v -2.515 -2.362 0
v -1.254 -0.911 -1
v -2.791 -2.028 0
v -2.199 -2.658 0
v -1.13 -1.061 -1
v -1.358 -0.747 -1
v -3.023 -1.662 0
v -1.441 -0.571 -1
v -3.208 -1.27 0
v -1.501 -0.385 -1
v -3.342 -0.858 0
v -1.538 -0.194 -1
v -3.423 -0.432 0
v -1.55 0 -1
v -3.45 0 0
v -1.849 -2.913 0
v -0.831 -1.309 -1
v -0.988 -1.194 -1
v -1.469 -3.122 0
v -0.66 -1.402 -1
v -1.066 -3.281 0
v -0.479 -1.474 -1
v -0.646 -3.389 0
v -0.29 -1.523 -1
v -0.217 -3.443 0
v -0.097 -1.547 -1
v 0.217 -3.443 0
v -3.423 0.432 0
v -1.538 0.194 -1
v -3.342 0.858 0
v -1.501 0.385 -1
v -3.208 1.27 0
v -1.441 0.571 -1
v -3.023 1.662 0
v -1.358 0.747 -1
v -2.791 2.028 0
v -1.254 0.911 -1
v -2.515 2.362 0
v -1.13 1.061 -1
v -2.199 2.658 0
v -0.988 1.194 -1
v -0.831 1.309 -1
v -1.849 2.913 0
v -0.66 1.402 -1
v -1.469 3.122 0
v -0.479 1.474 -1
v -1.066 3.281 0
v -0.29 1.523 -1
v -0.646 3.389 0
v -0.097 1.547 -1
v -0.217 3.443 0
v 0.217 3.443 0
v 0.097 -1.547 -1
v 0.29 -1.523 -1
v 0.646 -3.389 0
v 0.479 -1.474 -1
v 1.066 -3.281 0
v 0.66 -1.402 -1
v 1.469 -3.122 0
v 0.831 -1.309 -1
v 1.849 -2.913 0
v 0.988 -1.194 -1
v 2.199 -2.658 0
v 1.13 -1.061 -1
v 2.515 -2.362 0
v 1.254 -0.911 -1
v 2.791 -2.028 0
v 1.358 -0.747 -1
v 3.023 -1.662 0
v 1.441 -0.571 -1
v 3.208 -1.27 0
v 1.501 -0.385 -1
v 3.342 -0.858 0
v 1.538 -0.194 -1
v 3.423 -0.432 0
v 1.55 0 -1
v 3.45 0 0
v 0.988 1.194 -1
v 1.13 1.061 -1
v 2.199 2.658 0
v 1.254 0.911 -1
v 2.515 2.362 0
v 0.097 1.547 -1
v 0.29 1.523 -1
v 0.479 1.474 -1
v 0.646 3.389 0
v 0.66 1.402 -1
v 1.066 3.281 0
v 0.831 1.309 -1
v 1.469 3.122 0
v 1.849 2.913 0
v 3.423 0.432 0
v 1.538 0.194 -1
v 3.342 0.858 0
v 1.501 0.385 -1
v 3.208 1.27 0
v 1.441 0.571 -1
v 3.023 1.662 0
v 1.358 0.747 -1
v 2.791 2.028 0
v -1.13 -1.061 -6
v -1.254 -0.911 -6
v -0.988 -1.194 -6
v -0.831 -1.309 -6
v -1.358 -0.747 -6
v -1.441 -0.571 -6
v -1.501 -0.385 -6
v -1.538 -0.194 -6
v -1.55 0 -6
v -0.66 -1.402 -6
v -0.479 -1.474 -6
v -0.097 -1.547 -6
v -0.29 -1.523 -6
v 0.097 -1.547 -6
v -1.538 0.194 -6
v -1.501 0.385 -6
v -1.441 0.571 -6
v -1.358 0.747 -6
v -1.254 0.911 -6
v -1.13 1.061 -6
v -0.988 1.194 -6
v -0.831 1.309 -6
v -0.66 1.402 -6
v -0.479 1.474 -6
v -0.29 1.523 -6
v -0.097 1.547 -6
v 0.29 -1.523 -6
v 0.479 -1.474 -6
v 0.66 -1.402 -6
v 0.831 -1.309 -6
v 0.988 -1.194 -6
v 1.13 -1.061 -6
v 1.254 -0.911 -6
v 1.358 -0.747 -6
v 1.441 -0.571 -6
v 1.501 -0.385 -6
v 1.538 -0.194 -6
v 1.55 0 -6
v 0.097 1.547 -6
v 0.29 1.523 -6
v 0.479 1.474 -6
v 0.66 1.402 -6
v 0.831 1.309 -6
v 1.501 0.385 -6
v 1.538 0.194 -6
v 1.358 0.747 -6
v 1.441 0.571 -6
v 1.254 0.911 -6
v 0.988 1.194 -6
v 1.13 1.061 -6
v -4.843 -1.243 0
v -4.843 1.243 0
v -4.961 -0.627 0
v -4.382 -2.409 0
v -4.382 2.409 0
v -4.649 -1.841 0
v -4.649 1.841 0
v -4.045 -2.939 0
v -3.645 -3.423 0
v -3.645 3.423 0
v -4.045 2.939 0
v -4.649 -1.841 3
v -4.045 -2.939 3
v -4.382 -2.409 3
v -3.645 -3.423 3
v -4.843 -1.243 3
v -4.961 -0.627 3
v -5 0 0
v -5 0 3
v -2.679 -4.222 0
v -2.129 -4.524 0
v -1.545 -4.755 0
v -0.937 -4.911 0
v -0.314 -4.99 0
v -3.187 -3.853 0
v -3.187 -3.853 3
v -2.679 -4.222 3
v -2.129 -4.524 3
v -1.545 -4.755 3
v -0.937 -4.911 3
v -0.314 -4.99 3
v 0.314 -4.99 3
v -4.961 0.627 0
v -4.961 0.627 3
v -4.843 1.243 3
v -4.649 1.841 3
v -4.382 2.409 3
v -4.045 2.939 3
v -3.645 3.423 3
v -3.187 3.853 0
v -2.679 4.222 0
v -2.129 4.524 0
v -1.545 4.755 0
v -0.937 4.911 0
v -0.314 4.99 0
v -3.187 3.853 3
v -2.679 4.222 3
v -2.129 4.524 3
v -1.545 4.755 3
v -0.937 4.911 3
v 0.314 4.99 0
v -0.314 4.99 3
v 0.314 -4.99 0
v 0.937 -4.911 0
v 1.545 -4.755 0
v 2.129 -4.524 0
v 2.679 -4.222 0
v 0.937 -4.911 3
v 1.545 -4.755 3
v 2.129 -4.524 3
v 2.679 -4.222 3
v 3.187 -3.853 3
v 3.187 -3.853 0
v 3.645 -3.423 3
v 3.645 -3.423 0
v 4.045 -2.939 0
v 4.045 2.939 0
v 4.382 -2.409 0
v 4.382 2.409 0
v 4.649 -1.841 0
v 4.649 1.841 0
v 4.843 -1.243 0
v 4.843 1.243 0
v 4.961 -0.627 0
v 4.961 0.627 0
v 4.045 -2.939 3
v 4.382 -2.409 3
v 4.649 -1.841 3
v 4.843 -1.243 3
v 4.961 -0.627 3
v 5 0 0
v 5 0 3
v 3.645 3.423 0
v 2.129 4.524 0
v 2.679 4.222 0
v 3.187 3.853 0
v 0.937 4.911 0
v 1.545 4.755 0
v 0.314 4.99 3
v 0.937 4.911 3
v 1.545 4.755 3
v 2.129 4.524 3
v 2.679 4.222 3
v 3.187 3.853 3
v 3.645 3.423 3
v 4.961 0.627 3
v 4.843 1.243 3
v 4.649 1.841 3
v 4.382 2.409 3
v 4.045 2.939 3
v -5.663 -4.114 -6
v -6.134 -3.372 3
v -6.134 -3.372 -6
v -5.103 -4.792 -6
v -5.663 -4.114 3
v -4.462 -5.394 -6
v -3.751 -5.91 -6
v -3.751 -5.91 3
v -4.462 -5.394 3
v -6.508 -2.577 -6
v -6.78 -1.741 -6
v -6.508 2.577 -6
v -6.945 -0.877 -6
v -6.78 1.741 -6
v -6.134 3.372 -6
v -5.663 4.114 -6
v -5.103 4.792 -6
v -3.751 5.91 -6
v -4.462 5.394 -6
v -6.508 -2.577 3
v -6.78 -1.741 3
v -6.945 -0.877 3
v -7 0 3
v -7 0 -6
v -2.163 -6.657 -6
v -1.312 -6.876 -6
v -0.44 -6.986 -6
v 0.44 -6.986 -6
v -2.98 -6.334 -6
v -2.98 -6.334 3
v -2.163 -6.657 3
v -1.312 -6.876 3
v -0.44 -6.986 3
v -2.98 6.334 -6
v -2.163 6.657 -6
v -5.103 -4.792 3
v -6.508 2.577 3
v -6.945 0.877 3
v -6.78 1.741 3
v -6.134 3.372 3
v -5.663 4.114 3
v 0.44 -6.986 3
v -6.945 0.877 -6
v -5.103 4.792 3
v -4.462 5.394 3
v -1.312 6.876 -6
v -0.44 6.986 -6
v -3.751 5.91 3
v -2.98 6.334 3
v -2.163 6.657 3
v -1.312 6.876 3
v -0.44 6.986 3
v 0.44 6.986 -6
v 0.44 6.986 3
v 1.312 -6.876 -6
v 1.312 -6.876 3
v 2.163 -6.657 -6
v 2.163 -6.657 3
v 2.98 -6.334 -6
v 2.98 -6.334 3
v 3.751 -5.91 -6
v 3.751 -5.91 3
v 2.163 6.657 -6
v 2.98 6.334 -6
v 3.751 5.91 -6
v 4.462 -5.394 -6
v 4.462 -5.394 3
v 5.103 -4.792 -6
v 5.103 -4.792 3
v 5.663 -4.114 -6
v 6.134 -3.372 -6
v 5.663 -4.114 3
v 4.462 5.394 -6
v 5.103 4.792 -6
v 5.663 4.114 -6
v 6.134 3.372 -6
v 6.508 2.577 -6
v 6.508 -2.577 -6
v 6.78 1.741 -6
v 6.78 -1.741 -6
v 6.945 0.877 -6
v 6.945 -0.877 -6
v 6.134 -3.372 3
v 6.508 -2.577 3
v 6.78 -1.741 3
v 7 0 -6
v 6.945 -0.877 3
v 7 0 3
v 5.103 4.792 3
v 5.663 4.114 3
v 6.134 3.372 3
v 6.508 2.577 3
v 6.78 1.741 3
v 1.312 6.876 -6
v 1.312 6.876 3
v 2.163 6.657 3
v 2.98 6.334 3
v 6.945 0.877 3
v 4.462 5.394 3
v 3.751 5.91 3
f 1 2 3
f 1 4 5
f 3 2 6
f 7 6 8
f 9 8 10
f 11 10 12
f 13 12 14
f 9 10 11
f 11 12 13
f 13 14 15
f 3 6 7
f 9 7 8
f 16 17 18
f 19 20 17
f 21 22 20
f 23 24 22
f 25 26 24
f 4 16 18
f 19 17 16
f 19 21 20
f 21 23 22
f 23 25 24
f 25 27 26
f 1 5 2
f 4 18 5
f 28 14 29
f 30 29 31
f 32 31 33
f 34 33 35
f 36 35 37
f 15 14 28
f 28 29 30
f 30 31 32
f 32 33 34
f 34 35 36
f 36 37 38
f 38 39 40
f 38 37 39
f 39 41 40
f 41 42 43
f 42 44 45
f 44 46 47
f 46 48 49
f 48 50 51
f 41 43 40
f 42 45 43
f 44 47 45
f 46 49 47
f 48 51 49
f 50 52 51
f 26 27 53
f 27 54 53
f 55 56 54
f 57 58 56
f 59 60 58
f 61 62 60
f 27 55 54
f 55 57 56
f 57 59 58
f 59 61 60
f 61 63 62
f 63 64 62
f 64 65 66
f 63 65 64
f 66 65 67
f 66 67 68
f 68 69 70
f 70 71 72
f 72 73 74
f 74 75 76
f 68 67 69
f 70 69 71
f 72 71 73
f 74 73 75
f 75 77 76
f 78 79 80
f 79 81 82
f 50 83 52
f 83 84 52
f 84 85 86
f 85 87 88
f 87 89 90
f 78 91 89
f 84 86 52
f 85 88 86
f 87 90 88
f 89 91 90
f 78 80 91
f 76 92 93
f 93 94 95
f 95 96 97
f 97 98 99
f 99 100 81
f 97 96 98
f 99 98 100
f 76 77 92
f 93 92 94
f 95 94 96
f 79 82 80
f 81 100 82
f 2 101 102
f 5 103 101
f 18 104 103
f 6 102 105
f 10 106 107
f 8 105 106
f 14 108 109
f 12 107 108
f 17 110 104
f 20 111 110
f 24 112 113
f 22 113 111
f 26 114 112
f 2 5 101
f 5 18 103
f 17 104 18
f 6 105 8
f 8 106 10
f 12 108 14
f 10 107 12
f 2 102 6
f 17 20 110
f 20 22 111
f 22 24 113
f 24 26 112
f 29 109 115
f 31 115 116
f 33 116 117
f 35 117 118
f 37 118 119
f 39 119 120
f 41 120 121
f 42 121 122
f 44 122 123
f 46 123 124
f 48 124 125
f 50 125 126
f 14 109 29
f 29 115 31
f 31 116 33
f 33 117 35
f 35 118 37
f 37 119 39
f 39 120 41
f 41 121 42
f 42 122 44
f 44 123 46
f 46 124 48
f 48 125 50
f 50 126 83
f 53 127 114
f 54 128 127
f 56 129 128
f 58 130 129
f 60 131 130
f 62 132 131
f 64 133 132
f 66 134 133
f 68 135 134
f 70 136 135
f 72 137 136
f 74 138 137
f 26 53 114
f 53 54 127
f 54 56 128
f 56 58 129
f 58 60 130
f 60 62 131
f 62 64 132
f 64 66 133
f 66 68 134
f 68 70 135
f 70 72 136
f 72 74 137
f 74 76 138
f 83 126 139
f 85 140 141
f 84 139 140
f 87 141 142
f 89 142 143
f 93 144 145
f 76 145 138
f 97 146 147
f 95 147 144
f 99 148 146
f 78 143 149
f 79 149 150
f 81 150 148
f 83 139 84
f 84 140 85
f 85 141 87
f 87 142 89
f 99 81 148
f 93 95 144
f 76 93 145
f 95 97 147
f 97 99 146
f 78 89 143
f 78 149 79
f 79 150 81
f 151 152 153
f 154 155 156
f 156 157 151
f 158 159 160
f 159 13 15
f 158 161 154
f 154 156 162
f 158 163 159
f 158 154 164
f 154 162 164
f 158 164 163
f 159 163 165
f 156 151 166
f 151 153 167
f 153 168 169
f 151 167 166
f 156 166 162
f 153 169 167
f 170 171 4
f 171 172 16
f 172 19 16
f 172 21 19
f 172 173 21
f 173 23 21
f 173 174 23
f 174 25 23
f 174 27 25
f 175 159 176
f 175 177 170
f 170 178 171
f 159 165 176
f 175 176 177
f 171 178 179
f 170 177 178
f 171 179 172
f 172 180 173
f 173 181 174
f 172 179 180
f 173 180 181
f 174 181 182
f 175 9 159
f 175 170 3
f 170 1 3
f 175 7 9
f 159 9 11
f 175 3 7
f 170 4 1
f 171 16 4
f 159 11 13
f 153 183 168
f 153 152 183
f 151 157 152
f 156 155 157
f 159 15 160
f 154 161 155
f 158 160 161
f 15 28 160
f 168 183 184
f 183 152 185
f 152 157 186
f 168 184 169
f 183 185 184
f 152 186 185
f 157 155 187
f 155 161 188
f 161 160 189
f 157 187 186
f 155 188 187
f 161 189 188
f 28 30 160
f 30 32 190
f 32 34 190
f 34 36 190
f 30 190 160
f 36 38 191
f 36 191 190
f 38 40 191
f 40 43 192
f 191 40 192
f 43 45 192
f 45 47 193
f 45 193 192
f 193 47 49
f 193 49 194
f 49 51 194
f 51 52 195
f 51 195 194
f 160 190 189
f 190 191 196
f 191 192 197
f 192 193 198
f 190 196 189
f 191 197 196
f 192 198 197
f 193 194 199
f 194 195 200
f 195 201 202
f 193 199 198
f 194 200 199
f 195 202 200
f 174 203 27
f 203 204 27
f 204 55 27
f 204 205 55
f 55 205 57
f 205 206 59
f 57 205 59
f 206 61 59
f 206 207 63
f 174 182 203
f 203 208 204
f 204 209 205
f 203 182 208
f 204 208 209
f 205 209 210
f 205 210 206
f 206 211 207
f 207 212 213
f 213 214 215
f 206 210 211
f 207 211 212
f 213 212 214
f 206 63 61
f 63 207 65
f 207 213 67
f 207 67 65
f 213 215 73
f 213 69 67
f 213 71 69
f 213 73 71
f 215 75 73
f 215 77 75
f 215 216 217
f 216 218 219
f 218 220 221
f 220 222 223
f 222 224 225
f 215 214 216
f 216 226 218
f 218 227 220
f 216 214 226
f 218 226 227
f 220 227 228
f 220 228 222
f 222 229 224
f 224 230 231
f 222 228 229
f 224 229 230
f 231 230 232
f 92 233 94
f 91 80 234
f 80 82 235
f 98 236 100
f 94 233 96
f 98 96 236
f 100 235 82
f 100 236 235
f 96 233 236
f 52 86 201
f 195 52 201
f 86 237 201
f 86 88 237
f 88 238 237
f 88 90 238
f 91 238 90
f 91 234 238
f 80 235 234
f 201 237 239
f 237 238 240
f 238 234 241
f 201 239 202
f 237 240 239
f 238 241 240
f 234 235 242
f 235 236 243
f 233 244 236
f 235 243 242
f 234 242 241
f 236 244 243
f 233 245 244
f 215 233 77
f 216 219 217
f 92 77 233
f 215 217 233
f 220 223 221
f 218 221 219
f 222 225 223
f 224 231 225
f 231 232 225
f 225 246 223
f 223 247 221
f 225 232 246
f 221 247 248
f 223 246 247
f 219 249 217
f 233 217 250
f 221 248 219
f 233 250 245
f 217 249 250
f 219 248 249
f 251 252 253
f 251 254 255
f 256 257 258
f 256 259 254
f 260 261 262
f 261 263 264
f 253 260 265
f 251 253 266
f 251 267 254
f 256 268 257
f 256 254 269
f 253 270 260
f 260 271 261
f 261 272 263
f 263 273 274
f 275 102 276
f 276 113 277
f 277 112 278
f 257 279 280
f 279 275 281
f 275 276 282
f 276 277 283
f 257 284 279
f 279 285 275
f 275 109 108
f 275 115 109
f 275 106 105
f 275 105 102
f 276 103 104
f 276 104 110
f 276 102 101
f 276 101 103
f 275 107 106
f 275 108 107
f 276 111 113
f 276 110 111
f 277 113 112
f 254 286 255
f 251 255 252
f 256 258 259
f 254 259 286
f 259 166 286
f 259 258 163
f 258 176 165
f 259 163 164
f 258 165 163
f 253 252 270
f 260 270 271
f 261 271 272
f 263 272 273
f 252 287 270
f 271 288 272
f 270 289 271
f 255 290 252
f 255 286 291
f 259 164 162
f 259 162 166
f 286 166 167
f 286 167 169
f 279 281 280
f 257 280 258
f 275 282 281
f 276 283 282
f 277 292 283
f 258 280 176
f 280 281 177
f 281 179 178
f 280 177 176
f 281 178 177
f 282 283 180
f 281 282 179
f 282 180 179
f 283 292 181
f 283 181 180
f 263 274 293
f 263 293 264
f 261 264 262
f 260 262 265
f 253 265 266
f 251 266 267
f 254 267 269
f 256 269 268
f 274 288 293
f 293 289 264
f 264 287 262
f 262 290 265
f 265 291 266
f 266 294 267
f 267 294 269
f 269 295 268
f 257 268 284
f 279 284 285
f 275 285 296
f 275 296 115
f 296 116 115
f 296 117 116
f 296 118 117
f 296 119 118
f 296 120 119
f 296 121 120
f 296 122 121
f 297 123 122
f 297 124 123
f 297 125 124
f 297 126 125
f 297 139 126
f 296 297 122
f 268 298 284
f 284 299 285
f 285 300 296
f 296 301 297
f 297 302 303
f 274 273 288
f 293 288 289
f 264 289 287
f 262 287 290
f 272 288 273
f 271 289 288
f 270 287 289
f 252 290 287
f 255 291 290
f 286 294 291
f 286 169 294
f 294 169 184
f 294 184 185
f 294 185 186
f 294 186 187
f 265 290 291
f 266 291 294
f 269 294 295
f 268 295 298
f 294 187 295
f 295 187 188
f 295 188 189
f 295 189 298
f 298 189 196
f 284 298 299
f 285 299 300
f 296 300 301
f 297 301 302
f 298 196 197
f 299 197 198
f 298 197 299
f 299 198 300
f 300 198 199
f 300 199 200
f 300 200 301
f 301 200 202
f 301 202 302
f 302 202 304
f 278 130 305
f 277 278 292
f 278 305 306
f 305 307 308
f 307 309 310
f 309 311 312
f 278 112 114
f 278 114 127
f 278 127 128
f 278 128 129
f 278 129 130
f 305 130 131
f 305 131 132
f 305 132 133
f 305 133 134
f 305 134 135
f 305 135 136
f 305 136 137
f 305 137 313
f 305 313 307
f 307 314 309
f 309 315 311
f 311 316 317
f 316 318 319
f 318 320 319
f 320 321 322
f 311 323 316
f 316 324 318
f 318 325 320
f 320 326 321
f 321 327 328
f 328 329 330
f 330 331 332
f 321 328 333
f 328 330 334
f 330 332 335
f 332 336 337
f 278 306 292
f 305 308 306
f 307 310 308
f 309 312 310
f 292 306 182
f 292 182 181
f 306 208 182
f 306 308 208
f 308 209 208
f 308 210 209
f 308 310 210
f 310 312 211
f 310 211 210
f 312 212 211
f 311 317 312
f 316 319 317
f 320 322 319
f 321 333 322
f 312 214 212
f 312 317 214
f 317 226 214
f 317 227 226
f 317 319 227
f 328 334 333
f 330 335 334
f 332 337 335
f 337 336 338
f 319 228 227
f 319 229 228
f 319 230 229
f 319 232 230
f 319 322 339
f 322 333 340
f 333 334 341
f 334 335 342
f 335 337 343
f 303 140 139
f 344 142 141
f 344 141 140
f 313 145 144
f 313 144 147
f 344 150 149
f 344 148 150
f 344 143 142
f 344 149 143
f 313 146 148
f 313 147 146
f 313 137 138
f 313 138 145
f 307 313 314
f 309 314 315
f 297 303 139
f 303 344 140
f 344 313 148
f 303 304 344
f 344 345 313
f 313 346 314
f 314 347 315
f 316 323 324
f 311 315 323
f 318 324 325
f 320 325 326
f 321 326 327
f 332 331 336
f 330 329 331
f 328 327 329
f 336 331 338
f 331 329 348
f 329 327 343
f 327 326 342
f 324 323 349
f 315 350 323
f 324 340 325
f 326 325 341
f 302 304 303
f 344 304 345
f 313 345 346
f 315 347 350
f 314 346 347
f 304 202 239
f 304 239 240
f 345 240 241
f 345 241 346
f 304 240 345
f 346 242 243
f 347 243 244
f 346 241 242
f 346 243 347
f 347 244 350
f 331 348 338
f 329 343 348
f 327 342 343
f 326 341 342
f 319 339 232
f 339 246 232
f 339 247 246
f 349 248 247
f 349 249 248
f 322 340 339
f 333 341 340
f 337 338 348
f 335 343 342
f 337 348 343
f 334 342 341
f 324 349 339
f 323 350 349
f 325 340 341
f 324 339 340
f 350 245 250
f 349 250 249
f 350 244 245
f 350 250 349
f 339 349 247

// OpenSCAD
$fn = 50;


difference() {
	union() {
		translate(v = [0, 0, -6.0000000000]) {
			cylinder(h = 9, r = 7.0000000000);
		}
	}
	union() {
		translate(v = [0, 0, 0]) {
			rotate(a = [0, 0, 0]) {
				difference() {
					union() {
						translate(v = [0, 0, -9.0000000000]) {
							cylinder(h = 9, r = 1.2500000000);
						}
						translate(v = [0, 0, -1.0000000000]) {
							cylinder(h = 1.0000000000, r1 = 1.5500000000, r2 = 3.4500000000);
						}
						translate(v = [0, 0, -9.0000000000]) {
							cylinder(h = 9, r = 1.5500000000);
						}
						translate(v = [0, 0, -9.0000000000]) {
							cylinder(h = 9, r = 1.2500000000);
						}
					}
					union();
				}
			}
		}
		#cylinder(h = 3, r = 5.0000000000);
	}
}
